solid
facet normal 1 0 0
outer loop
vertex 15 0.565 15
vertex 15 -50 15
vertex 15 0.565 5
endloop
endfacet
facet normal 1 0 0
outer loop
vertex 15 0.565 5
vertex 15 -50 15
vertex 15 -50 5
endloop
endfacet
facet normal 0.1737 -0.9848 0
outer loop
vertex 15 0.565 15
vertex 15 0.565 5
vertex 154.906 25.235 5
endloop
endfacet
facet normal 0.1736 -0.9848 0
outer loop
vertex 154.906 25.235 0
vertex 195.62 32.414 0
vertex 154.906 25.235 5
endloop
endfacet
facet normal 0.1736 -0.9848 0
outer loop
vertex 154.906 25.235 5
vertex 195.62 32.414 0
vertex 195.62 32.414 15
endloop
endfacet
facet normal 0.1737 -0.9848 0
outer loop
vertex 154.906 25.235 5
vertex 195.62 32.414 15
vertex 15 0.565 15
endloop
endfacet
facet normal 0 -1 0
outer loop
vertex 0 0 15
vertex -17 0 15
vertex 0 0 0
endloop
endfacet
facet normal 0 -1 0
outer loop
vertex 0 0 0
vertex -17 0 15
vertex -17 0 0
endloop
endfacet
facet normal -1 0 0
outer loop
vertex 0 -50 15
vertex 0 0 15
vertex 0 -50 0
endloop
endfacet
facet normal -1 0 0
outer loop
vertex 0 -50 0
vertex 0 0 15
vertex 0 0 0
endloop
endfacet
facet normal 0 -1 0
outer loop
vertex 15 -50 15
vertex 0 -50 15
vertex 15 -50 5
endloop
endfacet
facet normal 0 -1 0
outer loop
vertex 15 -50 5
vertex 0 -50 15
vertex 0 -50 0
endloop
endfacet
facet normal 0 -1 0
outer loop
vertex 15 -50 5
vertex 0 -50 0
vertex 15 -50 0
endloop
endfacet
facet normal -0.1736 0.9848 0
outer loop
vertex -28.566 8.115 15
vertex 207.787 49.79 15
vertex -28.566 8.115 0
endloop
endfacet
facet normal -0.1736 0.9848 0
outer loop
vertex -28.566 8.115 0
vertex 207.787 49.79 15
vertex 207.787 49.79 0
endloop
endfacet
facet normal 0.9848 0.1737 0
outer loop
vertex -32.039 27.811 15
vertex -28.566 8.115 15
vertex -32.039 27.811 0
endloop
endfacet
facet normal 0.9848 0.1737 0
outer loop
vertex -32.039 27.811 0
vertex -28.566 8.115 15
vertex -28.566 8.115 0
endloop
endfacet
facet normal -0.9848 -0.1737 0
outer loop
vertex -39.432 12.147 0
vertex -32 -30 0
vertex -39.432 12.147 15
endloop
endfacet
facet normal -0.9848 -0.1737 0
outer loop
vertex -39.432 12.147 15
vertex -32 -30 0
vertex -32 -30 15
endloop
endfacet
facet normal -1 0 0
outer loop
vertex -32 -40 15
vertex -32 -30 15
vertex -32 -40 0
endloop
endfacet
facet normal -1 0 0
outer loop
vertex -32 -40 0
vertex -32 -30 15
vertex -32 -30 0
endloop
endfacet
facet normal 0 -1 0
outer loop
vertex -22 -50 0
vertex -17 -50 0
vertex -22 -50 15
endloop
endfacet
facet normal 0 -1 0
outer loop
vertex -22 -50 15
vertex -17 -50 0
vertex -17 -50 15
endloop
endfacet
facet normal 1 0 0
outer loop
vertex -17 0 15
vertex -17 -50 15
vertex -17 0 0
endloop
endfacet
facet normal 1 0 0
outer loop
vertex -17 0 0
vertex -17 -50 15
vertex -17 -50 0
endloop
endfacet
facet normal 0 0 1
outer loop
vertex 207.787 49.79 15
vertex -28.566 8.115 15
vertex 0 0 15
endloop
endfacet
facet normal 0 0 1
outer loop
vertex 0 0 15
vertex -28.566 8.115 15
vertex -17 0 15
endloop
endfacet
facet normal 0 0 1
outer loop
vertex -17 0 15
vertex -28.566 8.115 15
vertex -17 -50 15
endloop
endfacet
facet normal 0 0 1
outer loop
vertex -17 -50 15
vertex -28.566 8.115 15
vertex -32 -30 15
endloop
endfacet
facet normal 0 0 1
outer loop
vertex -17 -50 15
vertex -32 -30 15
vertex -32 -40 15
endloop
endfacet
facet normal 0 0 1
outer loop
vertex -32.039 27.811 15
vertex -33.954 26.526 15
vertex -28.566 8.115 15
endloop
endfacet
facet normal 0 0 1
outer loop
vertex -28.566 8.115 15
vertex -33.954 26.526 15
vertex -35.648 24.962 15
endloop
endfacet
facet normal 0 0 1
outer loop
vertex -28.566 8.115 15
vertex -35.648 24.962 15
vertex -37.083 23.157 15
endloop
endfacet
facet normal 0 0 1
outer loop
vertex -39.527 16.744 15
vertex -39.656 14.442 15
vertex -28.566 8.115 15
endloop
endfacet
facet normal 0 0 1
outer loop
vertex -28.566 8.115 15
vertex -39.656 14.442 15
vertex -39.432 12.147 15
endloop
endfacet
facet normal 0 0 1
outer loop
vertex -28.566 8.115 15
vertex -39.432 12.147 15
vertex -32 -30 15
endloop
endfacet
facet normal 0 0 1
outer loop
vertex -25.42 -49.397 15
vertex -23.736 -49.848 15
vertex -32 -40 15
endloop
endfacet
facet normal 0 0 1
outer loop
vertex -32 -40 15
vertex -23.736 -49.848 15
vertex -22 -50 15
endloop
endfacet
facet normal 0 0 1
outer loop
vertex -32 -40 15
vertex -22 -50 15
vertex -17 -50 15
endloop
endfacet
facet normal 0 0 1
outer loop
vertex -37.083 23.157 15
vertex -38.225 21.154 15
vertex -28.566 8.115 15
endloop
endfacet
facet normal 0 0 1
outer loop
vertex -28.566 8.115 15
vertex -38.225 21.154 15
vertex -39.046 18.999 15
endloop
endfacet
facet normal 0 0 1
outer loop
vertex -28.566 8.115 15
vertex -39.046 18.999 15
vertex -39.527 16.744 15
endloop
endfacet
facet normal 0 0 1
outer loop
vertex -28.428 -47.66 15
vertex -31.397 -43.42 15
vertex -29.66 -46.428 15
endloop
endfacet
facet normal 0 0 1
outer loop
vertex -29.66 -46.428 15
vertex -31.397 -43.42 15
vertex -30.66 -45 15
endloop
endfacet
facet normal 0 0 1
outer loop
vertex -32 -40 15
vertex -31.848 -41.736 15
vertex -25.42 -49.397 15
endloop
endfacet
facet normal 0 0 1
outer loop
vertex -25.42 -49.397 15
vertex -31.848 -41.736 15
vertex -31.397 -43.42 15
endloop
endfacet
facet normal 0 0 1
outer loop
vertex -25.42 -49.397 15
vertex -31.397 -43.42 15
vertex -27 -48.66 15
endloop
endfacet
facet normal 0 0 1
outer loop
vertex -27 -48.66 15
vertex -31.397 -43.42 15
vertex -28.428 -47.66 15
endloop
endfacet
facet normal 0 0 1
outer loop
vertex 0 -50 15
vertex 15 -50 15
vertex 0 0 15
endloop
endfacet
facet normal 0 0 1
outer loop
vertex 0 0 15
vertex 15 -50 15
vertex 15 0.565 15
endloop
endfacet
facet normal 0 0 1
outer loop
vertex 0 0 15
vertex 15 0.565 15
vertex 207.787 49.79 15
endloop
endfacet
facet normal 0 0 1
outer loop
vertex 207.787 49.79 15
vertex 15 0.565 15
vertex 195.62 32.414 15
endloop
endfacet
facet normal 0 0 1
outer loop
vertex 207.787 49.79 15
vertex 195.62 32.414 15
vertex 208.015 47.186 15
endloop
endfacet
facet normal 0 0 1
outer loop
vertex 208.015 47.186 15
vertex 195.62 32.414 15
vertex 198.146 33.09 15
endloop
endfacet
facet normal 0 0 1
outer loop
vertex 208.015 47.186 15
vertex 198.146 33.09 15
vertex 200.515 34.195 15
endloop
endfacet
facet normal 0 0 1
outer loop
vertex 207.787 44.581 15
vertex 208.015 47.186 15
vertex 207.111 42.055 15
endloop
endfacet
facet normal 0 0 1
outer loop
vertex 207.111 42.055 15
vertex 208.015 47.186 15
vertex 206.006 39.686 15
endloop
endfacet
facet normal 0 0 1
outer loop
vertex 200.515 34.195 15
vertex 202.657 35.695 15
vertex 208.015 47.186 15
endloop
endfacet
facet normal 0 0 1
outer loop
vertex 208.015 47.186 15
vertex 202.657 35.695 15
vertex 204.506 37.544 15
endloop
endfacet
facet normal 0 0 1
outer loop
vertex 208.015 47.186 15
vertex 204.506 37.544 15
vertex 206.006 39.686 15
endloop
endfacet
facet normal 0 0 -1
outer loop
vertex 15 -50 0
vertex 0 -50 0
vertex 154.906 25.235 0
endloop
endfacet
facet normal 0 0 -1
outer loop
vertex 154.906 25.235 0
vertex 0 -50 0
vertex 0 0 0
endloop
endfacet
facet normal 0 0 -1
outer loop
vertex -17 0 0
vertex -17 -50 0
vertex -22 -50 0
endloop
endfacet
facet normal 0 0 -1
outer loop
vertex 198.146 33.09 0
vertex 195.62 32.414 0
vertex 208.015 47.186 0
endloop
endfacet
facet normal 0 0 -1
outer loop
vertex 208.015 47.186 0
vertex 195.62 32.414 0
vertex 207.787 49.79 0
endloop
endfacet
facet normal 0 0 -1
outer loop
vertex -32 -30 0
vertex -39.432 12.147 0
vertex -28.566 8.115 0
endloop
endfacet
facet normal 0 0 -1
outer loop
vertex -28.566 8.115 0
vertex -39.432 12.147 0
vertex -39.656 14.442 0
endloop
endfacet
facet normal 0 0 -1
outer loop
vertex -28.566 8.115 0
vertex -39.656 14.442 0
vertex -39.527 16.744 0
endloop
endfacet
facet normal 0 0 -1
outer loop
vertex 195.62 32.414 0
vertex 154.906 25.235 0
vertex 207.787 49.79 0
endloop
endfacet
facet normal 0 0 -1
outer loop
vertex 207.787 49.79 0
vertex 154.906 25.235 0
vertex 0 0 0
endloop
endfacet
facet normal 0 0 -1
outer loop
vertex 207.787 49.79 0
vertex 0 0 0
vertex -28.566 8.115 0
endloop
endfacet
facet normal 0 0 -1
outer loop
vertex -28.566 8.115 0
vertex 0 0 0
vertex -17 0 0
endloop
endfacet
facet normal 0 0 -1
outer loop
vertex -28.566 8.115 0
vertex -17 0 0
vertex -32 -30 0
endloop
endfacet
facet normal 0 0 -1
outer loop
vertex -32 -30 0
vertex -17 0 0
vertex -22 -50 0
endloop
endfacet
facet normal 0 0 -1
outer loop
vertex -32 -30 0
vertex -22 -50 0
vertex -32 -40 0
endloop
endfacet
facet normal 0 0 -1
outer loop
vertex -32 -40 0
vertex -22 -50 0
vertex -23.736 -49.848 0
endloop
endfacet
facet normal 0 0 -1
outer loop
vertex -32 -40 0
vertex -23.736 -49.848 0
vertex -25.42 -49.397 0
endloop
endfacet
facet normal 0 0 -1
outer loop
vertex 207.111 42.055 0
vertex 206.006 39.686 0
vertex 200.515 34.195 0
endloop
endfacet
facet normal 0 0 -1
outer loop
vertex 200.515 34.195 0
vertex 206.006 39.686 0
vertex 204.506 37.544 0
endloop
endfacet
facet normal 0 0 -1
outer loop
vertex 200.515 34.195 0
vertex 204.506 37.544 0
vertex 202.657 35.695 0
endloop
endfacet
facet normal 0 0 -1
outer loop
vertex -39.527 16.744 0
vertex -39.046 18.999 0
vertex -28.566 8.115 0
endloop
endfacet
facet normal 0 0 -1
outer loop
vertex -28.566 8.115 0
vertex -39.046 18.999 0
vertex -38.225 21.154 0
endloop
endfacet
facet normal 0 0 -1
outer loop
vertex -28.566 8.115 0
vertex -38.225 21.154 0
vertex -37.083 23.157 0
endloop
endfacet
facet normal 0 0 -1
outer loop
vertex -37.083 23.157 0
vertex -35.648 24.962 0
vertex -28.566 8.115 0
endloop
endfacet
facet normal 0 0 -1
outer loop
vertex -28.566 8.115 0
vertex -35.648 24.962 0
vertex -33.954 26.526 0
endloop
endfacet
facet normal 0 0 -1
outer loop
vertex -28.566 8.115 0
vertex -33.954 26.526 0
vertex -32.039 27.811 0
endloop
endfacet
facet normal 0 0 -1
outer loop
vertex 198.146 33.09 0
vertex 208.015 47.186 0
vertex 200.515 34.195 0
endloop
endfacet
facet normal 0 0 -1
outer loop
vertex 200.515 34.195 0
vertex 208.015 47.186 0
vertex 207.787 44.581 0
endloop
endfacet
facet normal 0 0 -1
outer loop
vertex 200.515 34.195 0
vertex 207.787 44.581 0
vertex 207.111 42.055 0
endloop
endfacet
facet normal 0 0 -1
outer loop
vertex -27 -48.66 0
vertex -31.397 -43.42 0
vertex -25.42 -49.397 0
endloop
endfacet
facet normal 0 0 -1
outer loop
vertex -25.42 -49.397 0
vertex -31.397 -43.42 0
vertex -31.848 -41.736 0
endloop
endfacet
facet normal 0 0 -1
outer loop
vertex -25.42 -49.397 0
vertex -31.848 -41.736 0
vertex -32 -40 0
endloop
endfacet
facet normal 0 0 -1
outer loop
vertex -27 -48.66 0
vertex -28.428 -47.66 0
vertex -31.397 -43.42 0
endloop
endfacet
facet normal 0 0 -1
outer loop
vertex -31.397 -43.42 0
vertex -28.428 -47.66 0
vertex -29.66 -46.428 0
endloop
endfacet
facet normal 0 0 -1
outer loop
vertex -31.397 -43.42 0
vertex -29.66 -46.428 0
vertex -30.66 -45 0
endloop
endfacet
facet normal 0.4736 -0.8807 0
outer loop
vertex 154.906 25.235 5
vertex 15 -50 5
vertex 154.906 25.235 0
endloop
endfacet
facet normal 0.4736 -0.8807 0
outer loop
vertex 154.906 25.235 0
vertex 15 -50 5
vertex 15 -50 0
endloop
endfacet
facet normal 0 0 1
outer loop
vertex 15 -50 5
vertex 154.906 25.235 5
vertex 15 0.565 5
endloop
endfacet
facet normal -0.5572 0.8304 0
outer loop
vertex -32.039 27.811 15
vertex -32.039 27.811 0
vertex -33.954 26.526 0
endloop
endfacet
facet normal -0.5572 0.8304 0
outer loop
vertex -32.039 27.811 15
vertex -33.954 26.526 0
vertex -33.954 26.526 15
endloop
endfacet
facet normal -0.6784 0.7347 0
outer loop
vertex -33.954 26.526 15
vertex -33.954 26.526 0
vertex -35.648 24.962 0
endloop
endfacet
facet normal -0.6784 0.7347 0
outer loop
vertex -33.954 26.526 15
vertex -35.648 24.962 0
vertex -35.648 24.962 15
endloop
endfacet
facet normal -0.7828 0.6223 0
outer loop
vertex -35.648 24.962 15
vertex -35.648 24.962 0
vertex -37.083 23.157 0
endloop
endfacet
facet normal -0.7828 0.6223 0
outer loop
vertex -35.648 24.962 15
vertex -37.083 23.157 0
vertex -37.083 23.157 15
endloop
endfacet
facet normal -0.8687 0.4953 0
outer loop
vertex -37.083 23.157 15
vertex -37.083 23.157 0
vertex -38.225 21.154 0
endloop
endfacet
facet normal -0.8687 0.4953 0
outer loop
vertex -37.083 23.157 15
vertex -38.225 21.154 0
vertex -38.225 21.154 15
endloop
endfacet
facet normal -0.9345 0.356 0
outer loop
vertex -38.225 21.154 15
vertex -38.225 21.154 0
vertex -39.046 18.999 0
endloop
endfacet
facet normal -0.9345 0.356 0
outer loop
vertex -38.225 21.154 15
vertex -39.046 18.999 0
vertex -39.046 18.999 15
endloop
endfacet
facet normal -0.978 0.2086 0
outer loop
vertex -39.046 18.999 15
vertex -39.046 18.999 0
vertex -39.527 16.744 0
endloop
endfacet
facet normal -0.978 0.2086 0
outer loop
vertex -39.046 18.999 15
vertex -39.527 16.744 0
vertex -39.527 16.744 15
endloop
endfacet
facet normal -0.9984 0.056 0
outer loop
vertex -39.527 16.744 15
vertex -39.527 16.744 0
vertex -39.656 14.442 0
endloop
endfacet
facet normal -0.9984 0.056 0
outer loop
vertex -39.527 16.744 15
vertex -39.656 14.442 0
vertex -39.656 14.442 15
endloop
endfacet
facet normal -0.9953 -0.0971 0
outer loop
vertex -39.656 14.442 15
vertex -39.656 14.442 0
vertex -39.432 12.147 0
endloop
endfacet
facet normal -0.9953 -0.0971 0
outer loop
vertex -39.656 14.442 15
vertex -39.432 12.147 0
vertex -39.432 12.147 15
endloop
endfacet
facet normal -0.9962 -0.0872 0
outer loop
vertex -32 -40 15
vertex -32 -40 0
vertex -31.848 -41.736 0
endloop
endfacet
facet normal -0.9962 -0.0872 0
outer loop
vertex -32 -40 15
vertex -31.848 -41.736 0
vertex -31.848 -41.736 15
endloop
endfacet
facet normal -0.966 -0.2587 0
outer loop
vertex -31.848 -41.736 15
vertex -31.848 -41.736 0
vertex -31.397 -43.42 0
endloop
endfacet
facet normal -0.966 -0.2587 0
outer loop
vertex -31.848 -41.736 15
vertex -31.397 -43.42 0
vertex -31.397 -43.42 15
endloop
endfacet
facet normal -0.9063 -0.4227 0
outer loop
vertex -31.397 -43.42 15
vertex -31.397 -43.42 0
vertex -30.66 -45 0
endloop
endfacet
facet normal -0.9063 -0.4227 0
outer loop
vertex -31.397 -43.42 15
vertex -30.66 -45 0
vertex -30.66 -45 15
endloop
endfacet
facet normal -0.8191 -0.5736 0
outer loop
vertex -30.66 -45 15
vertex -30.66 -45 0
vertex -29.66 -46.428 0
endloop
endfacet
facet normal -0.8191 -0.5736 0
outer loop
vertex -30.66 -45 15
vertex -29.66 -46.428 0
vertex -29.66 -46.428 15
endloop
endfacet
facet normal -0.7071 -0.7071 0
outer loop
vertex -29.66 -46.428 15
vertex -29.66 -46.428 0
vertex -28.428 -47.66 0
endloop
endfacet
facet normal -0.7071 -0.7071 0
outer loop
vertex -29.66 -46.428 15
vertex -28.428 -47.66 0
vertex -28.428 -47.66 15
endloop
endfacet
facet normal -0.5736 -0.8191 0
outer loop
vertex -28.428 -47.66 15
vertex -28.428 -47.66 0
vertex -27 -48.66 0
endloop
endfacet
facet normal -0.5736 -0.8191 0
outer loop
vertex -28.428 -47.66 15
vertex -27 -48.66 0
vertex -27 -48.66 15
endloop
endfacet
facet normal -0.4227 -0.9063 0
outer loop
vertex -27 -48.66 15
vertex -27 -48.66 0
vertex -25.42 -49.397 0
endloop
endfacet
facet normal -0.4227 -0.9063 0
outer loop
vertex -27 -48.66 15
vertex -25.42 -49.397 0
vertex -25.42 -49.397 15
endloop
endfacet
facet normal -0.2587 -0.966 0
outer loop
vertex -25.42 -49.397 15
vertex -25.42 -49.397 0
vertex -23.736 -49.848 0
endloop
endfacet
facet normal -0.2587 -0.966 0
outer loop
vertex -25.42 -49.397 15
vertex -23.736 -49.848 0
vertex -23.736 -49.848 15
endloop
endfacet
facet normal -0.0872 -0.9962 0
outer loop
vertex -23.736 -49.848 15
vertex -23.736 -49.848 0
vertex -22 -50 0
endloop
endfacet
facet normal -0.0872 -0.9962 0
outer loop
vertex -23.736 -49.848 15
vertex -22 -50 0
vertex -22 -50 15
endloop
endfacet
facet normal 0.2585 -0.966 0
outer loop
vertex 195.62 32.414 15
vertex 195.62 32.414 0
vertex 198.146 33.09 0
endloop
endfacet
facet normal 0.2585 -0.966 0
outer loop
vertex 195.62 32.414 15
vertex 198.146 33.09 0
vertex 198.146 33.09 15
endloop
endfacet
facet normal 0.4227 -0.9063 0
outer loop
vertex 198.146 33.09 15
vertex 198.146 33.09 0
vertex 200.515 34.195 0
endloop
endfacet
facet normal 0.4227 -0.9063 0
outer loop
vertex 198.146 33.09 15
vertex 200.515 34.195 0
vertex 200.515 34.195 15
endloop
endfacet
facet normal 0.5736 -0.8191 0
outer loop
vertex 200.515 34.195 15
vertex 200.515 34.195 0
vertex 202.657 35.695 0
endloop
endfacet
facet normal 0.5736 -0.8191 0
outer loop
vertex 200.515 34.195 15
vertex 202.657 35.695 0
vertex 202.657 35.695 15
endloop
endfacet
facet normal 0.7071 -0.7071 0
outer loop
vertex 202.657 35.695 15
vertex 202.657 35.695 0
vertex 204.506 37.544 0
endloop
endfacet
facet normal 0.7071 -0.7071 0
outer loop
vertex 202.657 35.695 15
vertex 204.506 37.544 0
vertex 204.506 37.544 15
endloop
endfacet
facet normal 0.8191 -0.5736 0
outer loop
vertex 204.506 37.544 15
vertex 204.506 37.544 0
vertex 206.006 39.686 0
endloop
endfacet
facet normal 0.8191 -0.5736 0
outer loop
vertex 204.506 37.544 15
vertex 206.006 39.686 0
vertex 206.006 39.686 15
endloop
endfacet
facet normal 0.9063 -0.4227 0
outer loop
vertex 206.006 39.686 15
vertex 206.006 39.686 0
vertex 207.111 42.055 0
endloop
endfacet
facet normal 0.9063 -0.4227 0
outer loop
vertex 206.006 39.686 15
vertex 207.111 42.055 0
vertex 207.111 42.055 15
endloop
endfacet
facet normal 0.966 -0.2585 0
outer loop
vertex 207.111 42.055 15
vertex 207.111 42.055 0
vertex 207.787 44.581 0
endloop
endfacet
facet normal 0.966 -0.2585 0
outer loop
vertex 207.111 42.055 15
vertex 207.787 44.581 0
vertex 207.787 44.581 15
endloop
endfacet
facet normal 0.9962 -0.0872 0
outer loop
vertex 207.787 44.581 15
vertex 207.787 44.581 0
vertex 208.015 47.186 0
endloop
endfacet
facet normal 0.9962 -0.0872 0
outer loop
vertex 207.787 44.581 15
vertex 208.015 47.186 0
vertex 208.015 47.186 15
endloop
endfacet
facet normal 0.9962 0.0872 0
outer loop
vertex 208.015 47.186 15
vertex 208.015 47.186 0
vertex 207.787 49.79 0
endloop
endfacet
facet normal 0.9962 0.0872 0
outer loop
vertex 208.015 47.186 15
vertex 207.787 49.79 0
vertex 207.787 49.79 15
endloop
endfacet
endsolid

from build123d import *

# Parameters (mm, degrees)
BOSS_EXTRUDE1_DEPTH = 15
BOSS_EXTRUDE2_DEPTH = 5
FILLET1_R           = 15
FILLET2_R           = 10
FILLET3_R           = 15


# Some blends are built 0.0001 mm under size
with BuildPart() as part:
    # Sketch1 → Boss-Extrude1 (new body)
    with BuildSketch(Plane.XY):
        Polygon((0, 0), (0, -50), (15, -50), (15, 0.565330323), (210.392182336, 35.018243889), (207.787459671, 49.790360184), (-28.566401052, 8.114797544), (-32.039364606, 27.810952604), (-41.887442136, 26.074470827), (-32, -30), (-32, -50), (-17, -50), (-17, 0), align=None)
    extrude(amount=BOSS_EXTRUDE1_DEPTH)

    # Sketch2 → Boss-Extrude2 (add)
    with BuildSketch(Plane.XY):
        Polygon((15, -50), (154.906481174, 25.23461773), (15, 0.565330323), align=None)
    extrude(amount=BOSS_EXTRUDE2_DEPTH)

    # Fillet1
    # the kernel refuses this fillet: 15 mm, written as the material it takes off along each edge
    with BuildSketch(Plane(origin=(-41.887442136, 26.074470827, -35.355339059), x_dir=(0.9848077530122078, 0.17364817766693189, 0), z_dir=(0, 0, 1))) as fillet1_piece_1:
        with BuildLine():
            CenterArc((15, -14.142135624), FILLET1_R, 109.471220634, 70.528779366)
            Line((0, -14.142135624), (-0.3, -14.142135624))
            Line((-0.3, -14.142135624), (-0.3, 0))
            Line((-0.3, 0), (0, 0.3))
            ThreePointArc((0, 0.3), (5, 0.3), (9.9, 0.282842712))
            Line((9.9, 0.282842712), (10, 0))
        make_face()
    extrude(amount=85.710678119, mode=Mode.SUBTRACT)

    # Fillet2
    fillet2_edges = [part.edges().sort_by_distance(p)[0] for p in [
        (-32, -50, 7.5),
    ]]
    fillet(fillet2_edges, radius=FILLET2_R)

    # Fillet3
    fillet3_edges = [part.edges().sort_by_distance(p)[0] for p in [
        (210.392182336, 35.018243889, 7.5),
    ]]
    fillet(fillet3_edges, radius=FILLET3_R - 0.0001)  # a hair under: the kernel refuses the full size


solid = part.part
